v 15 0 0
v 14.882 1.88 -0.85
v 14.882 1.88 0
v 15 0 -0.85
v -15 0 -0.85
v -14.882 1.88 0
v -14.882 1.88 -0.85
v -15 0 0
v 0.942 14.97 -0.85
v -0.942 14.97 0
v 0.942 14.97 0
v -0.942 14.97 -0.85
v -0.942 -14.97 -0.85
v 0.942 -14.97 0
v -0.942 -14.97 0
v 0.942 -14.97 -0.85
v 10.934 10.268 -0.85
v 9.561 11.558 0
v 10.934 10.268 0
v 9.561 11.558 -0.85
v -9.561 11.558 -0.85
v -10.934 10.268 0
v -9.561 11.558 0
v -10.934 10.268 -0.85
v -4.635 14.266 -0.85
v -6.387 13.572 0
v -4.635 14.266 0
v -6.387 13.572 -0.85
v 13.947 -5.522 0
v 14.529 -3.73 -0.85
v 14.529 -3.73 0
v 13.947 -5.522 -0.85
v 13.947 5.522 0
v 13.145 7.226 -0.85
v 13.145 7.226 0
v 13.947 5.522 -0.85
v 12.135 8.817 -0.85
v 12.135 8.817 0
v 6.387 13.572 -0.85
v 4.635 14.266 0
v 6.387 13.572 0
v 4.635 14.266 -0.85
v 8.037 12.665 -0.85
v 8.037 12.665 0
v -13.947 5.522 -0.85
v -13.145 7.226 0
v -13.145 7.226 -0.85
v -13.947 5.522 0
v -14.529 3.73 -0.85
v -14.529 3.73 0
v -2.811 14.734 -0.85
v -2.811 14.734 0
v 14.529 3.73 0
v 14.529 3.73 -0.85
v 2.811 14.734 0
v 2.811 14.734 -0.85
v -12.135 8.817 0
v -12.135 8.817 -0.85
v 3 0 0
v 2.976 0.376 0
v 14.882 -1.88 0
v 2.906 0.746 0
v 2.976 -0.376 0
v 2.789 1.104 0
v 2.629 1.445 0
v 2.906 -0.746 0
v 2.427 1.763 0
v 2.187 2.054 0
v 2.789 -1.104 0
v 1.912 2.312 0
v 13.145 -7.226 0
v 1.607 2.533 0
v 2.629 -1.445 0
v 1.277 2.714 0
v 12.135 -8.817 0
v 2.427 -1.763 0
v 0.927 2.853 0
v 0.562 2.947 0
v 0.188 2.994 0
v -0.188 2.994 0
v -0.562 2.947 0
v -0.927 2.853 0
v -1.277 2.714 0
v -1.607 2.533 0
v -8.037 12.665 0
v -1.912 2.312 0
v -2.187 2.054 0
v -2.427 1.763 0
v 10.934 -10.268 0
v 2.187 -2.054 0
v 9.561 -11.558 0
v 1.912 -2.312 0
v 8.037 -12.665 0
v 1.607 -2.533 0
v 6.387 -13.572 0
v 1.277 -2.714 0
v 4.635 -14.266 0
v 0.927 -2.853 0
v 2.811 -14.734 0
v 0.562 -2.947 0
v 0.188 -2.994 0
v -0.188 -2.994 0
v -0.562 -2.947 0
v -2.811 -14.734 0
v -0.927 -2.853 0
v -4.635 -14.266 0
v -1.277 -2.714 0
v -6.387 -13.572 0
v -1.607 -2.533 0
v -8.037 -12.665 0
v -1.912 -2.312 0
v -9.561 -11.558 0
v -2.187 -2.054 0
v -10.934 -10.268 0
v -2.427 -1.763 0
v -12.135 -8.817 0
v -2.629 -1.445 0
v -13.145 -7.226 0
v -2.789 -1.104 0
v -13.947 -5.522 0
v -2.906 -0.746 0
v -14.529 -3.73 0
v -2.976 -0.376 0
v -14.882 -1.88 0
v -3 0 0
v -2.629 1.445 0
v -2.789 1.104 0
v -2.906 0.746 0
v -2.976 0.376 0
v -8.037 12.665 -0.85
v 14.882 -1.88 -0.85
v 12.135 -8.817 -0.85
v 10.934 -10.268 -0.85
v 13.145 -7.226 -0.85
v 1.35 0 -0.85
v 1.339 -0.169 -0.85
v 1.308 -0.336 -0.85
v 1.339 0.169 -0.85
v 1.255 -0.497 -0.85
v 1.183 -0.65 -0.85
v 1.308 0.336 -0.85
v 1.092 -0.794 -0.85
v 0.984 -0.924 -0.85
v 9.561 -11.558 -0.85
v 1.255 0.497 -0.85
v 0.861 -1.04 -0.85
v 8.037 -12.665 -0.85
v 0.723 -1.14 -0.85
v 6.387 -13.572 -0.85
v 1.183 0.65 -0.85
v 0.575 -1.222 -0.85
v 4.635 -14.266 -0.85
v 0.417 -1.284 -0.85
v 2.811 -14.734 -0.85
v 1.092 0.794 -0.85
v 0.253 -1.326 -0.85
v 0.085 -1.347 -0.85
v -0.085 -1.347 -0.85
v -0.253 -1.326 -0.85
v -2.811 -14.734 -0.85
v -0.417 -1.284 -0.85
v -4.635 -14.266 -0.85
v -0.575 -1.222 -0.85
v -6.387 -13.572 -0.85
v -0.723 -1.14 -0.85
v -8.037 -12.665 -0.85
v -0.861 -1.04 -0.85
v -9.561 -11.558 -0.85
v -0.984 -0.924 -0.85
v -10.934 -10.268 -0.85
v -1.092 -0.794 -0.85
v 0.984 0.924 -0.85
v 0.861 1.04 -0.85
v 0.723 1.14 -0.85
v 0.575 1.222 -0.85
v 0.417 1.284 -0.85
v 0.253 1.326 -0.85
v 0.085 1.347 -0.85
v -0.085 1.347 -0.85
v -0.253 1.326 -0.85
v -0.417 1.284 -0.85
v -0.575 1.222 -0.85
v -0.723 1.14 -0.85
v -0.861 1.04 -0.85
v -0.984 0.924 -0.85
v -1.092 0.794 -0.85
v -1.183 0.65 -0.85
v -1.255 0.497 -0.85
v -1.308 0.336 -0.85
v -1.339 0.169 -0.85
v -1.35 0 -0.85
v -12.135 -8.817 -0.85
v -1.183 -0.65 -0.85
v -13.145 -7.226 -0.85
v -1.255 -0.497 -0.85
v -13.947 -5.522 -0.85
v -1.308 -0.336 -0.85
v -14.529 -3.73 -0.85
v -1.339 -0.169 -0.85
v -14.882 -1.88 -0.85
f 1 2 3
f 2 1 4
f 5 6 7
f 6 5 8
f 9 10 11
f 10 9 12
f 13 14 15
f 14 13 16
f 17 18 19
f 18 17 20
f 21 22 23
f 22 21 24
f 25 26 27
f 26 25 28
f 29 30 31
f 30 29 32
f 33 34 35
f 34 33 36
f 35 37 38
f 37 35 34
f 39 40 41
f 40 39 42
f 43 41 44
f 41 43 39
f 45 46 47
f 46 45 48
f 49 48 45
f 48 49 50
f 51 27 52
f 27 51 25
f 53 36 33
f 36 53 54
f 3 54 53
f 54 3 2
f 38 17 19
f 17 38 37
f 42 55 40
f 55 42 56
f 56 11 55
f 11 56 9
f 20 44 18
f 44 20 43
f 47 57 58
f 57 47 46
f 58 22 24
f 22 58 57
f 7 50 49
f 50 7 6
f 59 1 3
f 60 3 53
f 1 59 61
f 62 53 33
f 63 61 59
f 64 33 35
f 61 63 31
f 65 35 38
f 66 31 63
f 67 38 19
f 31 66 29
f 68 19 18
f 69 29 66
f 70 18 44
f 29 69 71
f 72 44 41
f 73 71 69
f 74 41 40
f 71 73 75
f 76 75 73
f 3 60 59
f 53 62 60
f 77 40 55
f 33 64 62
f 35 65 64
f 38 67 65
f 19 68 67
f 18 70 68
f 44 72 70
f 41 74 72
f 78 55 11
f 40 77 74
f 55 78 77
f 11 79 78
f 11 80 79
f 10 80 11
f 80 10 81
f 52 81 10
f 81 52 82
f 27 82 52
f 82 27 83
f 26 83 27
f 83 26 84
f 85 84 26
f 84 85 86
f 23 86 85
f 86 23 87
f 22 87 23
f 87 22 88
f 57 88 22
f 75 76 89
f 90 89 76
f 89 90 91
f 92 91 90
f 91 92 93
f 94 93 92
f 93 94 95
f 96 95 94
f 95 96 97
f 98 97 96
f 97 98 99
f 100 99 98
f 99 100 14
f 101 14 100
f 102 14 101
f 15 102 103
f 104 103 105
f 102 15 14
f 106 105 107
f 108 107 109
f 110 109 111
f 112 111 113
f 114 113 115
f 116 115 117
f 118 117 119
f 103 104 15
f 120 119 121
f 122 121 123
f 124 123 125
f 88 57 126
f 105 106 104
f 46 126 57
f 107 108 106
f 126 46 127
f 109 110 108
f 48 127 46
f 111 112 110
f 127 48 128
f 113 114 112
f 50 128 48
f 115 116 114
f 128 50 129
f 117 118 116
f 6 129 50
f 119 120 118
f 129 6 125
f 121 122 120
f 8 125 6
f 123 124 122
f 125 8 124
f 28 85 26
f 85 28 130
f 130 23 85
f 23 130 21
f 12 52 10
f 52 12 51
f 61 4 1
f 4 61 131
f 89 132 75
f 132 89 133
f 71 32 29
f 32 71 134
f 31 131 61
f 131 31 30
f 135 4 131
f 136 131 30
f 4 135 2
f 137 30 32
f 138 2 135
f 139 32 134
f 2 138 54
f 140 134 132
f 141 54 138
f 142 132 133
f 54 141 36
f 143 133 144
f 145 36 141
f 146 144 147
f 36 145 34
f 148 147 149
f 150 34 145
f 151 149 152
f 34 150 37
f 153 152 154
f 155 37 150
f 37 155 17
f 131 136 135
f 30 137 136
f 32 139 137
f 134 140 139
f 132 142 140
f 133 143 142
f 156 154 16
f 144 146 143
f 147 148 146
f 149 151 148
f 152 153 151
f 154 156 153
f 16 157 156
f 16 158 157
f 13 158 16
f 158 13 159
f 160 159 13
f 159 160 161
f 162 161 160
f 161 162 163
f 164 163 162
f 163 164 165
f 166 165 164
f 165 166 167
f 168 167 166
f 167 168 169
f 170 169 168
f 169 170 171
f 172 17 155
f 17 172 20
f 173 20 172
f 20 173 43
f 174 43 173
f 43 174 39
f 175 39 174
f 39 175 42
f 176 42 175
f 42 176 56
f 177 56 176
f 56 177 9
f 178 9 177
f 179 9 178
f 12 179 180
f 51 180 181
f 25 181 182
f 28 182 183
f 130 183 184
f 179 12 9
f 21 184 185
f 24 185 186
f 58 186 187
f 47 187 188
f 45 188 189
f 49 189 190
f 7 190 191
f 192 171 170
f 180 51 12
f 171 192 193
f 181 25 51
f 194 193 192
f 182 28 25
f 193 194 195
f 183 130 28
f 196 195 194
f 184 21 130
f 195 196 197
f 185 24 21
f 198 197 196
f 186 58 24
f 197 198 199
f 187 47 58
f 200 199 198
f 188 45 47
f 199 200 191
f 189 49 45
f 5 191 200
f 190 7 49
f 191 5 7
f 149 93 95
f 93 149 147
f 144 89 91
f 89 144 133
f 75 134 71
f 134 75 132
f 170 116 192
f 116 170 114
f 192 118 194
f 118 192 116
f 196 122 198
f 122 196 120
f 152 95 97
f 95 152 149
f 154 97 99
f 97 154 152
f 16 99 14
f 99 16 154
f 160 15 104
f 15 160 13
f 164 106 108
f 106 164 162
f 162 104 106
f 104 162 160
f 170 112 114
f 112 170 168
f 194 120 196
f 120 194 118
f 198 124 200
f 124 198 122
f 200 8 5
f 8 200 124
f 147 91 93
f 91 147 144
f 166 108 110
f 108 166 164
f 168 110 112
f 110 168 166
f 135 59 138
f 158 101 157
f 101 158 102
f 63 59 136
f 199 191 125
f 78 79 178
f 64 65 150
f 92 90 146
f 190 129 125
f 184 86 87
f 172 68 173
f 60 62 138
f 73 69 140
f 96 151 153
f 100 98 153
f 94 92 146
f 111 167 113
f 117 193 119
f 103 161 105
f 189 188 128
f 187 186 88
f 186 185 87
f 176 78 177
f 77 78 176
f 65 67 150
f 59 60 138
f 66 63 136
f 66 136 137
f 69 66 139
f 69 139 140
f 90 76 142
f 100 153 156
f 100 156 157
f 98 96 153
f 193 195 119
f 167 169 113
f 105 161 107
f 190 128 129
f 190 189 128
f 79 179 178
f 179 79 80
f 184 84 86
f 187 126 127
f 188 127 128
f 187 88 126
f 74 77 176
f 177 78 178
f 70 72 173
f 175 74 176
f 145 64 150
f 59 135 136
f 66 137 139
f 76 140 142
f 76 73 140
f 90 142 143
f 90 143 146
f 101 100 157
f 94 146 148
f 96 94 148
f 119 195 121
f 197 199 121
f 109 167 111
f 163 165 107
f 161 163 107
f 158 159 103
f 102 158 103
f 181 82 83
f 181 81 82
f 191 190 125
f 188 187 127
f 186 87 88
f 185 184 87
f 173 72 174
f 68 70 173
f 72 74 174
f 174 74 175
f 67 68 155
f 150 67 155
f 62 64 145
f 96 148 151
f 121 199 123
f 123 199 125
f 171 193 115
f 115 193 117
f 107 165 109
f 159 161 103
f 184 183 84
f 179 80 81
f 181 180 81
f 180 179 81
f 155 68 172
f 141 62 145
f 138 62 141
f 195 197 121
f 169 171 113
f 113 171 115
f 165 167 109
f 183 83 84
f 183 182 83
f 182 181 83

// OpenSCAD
$fn = 50;


difference() {
	union() {
		translate(v = [0, 0, -0.8500000000]) {
			cylinder(h = 0.8500000000, r = 15.0000000000);
		}
		translate(v = [0, 0, -0.8500000000]) {
			cylinder(h = 0.8500000000, r = 2.8750000000);
		}
	}
	union() {
		translate(v = [0, 0, 0]) {
			rotate(a = [0, 0, 0]) {
				difference() {
					union() {
						#translate(v = [0, 0, -0.8500000000]) {
							cylinder(h = 0.8500000000, r = 1.0000000000);
						}
						#translate(v = [0, 0, -0.8500000000]) {
							cylinder(h = 0.8500000000, r1 = 1.3500000000, r2 = 3.0000000000);
						}
						#translate(v = [0, 0, -0.8500000000]) {
							cylinder(h = 0.8500000000, r = 1.3500000000);
						}
						#translate(v = [0, 0, -0.8500000000]) {
							cylinder(h = 0.8500000000, r = 1.0000000000);
						}
					}
					union();
				}
			}
		}
	}
}
